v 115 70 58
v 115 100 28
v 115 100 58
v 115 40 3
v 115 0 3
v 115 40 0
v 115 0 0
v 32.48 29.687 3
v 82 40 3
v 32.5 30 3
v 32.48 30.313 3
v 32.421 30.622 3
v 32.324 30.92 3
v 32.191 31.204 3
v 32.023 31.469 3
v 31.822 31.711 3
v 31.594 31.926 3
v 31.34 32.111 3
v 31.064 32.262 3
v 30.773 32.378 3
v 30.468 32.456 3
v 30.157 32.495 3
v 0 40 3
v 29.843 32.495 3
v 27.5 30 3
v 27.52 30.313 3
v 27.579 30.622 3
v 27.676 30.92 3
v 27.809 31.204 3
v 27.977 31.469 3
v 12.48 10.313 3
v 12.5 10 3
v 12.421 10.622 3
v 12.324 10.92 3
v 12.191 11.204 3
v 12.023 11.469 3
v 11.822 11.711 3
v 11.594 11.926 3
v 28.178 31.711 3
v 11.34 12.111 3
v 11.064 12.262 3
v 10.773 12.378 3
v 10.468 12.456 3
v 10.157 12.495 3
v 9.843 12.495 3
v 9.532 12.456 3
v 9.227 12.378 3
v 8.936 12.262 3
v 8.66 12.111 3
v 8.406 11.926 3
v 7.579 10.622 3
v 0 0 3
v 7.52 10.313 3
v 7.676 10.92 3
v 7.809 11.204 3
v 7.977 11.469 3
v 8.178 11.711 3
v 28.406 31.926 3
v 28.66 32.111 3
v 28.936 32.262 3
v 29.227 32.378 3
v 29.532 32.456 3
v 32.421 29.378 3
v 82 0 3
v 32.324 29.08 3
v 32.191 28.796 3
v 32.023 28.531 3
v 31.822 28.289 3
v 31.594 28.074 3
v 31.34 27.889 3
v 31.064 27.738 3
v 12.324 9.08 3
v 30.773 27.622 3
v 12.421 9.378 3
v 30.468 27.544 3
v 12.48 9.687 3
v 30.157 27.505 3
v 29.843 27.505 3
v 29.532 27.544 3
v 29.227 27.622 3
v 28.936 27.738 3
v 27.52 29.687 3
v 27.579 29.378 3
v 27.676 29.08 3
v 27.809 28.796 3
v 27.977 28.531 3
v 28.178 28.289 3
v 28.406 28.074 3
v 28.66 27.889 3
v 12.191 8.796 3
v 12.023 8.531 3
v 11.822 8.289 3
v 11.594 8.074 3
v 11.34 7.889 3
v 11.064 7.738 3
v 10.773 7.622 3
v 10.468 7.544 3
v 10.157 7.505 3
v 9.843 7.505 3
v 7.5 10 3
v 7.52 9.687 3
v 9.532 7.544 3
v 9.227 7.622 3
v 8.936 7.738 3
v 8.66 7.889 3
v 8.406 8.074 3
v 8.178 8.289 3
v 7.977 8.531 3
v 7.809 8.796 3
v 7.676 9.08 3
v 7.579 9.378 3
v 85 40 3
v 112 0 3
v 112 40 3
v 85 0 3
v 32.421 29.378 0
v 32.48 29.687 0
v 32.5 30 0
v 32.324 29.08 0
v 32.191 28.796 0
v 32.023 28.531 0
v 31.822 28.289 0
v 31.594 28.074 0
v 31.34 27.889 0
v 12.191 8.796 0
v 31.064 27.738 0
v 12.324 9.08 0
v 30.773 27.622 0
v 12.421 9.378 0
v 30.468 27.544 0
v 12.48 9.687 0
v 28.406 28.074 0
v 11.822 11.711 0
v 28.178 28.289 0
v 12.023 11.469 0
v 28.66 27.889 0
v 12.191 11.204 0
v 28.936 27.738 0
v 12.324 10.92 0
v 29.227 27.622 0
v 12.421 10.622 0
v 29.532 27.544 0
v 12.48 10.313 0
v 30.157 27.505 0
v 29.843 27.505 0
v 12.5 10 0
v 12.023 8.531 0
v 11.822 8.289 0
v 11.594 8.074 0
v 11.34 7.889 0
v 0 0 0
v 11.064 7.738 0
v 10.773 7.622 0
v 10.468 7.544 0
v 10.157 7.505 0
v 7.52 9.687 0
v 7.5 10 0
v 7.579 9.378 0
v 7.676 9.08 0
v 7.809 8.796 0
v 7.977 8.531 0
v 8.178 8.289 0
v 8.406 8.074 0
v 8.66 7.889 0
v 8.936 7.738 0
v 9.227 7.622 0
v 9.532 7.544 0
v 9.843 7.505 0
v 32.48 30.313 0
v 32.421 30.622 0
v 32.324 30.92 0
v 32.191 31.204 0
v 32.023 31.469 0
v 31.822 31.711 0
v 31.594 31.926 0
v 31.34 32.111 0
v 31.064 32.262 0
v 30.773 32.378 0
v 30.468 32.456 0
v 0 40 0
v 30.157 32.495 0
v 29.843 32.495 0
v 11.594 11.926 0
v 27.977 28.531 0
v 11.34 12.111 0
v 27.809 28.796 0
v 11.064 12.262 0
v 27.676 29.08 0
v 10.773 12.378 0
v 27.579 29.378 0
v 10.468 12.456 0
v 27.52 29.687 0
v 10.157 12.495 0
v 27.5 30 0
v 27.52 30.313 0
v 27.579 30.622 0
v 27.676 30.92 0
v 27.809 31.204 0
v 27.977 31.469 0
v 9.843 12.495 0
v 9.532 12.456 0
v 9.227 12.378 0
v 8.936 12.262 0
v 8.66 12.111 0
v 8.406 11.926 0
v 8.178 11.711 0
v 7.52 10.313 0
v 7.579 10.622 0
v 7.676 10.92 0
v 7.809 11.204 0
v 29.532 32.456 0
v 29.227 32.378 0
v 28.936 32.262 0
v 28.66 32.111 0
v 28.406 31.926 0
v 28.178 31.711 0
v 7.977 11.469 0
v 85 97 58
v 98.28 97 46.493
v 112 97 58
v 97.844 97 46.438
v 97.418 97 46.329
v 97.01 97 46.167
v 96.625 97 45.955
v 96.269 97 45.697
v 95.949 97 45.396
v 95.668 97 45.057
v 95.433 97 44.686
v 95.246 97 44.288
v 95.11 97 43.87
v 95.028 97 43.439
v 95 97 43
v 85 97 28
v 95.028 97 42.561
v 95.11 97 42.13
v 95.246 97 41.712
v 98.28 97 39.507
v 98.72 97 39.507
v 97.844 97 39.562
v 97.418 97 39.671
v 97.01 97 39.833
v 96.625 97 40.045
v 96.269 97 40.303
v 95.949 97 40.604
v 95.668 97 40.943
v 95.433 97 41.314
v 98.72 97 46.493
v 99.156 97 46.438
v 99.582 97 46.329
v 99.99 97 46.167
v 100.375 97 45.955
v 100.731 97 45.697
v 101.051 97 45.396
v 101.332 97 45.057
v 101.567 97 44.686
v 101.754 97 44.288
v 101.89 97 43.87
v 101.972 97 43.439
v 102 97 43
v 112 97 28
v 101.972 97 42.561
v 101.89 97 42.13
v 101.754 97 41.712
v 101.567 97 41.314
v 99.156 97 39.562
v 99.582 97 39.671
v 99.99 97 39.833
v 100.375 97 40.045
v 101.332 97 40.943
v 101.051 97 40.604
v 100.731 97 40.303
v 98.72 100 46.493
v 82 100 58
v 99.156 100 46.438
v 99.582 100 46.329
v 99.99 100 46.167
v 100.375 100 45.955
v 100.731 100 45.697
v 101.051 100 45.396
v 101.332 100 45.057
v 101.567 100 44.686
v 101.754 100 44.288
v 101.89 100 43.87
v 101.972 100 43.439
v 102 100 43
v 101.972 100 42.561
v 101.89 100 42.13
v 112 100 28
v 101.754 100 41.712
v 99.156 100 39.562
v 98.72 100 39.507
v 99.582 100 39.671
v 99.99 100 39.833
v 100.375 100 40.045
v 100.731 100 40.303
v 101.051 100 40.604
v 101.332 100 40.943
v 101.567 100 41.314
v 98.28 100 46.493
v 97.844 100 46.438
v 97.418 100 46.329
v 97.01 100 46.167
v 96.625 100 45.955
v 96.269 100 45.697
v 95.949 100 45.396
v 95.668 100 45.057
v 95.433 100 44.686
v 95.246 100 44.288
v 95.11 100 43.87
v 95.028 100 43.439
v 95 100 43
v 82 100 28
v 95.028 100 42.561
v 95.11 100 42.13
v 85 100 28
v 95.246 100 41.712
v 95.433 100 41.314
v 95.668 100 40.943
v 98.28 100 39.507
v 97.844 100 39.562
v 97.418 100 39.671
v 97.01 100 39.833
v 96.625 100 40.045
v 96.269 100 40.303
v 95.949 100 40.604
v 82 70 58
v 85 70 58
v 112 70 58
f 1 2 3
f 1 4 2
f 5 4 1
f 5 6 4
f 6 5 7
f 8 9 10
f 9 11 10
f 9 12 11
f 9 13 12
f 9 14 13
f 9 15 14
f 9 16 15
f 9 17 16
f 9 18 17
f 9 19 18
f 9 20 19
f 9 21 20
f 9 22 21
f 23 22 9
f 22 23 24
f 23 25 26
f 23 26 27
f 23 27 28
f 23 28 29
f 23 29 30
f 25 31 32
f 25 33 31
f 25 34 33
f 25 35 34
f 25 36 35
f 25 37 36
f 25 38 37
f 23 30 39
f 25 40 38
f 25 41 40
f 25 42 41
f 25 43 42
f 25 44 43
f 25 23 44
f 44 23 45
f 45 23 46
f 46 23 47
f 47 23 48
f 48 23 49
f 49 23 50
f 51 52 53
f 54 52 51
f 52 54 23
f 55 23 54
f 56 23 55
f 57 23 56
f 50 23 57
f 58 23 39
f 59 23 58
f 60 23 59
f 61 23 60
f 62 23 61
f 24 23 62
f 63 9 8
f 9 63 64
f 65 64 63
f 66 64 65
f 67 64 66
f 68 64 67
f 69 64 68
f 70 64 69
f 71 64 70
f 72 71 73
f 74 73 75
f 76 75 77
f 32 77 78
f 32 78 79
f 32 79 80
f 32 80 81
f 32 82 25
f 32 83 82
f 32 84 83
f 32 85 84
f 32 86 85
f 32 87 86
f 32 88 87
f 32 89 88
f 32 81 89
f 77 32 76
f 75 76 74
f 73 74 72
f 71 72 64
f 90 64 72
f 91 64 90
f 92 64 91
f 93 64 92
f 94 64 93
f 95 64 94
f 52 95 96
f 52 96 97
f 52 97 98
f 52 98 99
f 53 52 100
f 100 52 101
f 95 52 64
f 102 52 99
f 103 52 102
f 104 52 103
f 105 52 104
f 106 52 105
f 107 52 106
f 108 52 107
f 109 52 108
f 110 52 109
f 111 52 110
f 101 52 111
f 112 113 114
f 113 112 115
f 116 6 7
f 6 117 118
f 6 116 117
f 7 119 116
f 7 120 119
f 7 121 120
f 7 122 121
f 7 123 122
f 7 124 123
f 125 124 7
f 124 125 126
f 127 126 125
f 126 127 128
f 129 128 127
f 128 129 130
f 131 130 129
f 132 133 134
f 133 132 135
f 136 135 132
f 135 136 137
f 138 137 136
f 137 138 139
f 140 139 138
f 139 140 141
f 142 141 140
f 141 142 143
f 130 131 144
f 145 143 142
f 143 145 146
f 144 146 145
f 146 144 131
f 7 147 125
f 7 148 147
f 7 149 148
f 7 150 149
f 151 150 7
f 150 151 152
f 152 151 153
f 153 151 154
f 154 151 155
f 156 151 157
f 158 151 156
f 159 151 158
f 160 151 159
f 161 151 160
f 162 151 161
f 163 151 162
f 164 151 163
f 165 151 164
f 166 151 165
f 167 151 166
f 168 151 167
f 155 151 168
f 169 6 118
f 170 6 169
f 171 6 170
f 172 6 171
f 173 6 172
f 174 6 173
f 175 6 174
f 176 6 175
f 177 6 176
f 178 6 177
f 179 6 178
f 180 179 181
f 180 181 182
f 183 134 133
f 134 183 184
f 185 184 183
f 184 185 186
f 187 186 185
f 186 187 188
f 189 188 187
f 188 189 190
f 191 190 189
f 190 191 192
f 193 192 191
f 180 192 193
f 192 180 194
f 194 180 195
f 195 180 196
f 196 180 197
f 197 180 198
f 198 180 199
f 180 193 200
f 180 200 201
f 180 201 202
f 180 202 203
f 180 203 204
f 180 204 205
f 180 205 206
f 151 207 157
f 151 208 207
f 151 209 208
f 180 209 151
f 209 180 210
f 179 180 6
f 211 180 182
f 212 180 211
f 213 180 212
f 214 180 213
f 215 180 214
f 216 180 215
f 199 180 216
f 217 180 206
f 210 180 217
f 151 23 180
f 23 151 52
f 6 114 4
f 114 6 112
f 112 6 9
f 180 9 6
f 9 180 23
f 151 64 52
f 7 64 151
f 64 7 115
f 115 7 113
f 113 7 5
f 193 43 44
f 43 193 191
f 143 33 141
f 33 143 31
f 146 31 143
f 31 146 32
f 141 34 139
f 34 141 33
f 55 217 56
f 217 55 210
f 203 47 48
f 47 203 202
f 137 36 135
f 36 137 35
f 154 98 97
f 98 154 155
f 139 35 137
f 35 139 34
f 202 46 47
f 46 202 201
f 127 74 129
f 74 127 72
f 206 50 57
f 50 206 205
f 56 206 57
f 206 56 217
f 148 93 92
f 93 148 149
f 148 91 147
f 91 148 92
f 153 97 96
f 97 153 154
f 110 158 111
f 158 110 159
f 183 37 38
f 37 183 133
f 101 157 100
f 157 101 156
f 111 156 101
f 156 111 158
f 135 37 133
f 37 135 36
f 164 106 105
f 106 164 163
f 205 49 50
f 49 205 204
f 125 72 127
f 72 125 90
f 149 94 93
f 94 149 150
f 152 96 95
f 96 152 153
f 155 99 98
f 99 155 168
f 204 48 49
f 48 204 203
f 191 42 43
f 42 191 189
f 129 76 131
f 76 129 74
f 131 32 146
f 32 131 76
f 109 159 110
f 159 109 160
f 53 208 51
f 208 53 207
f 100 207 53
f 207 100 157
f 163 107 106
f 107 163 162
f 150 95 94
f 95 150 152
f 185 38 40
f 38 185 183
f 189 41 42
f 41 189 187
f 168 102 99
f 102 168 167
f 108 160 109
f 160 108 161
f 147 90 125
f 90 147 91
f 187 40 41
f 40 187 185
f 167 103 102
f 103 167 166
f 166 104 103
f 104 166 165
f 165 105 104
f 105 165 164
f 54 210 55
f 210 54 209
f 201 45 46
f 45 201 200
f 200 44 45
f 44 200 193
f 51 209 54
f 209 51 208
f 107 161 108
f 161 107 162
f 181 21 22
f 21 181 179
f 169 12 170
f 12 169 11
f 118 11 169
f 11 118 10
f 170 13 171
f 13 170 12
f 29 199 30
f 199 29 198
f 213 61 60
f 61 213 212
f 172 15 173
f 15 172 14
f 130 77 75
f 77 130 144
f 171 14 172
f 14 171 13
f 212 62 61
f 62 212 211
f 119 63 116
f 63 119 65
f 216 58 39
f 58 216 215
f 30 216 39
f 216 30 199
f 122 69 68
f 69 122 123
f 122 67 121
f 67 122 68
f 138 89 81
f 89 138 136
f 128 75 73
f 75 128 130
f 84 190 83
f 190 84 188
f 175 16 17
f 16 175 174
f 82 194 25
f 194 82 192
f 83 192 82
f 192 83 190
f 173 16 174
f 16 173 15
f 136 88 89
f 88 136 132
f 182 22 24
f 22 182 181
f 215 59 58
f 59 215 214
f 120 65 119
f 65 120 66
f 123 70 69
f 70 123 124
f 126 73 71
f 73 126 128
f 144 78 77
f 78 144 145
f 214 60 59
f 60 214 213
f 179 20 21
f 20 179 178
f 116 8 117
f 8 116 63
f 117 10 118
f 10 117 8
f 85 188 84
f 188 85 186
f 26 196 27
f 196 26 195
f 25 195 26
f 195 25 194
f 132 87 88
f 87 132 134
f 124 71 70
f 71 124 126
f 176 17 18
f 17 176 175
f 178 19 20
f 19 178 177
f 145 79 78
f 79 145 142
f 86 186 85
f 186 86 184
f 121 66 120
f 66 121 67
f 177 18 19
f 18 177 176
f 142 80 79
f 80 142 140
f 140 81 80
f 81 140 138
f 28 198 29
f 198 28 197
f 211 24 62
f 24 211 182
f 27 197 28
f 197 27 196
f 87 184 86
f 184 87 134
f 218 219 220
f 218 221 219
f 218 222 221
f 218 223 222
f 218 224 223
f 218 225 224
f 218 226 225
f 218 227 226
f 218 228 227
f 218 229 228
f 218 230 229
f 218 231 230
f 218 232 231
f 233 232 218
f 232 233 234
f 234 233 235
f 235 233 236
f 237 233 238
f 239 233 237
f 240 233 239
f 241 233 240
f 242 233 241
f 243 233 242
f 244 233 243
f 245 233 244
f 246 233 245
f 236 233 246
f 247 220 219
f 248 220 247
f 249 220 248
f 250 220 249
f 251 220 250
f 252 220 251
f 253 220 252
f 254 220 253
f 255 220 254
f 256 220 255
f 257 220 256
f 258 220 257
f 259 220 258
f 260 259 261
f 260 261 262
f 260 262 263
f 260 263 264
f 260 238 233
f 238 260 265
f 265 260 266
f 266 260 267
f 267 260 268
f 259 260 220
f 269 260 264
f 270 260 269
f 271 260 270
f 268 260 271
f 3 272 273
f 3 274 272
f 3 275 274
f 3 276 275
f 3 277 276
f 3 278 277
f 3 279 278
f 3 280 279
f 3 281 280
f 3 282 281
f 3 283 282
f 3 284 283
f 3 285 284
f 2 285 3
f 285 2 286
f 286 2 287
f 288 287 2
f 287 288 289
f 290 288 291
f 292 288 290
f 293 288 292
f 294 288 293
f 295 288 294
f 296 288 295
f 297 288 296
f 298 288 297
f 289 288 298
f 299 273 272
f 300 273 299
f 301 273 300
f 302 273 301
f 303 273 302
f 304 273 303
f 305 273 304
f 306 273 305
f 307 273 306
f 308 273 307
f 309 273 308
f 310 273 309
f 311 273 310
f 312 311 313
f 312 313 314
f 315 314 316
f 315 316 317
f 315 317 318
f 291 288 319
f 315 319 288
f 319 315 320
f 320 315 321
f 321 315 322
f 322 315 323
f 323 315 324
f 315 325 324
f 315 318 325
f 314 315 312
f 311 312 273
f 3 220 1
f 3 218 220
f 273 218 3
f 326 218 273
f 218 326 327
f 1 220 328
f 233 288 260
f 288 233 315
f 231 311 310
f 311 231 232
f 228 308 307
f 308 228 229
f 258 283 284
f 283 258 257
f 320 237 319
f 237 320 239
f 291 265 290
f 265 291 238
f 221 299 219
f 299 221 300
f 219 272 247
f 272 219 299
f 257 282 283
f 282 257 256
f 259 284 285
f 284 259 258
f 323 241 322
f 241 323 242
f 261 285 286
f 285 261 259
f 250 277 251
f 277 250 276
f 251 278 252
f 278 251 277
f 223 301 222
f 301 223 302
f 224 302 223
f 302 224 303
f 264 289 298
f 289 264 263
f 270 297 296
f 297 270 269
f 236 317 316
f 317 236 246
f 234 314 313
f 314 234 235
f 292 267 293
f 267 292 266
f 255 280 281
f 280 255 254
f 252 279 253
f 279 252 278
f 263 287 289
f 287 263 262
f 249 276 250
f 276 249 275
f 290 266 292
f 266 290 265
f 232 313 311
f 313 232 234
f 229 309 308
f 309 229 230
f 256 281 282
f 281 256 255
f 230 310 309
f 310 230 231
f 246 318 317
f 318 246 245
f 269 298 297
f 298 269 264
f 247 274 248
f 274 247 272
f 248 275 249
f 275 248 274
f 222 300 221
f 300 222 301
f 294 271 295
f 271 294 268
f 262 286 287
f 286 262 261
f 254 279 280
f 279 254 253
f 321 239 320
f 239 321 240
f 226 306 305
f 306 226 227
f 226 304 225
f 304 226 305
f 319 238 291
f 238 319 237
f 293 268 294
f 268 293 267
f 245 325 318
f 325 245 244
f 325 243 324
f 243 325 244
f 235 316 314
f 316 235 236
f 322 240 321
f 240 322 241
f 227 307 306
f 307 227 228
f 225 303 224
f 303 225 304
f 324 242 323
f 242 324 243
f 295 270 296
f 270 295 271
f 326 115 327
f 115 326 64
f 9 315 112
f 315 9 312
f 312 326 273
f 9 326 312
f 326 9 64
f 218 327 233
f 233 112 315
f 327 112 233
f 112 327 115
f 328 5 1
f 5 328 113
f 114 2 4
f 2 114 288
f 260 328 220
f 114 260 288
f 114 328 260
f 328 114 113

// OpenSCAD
$fn=50;

OVERLAP=0.01; // how much bigger to make the object we want to remove
              // to ensure it fully removes it
              
DEPTH=3; // print depth of the holder

PROFILE_SIZE=40; // size of the alu profile
CM_R=3.5; // M size of the camera mounting (CM) bolt
CM_X=100; // distance of the mount hole from the left
CM_Y=100; // distance of the mount hole from the bottom
CM_Z=40; // distance of the mount hole from the front

MM_HOLE_R=2.5; // M size of the model mounting (MM) bolt
MM_X=10; // offset of the MM hole in the X
MM_Y=10; // offset of the MM hole in the Y

CM_SUPPORT_WIDTH=30; // width of the support

module front_plate() {
    
    difference() {
        cube([CM_X + CM_SUPPORT_WIDTH / 2, PROFILE_SIZE, DEPTH]);
        
        translate([MM_X, MM_Y, -OVERLAP/2])
        cylinder(h = DEPTH + OVERLAP, r = MM_HOLE_R);
        
        translate([PROFILE_SIZE - MM_X, PROFILE_SIZE - MM_Y, -OVERLAP/2])
        cylinder(h = DEPTH + OVERLAP, r = MM_HOLE_R);
    }
}

module cm_bracket() {
    rotate([0, 270, 0])
    linear_extrude(DEPTH)
    polygon(points=[
        [0, 0], 
        [CM_Z + CM_SUPPORT_WIDTH / 2, CM_Y - CM_SUPPORT_WIDTH], 
        [CM_Z + CM_SUPPORT_WIDTH / 2, CM_Y],
        [CM_Z - CM_SUPPORT_WIDTH / 2, CM_Y],
        [0, PROFILE_SIZE]
    ]);
}

module cm_plate() {
    rotate([90, 0, 0])
    difference() {
        cube([CM_SUPPORT_WIDTH, CM_SUPPORT_WIDTH, DEPTH]);
        
        translate([CM_SUPPORT_WIDTH / 2, CM_SUPPORT_WIDTH / 2, -OVERLAP / 2])
        cylinder(h = DEPTH + OVERLAP, r = CM_R);
    }
}

front_plate();

union() {
    
    w_offset = (CM_SUPPORT_WIDTH / 2) - (DEPTH / 2);
    
    translate([CM_X - (CM_SUPPORT_WIDTH / 2), 0, DEPTH])
    cm_bracket();
    translate([CM_X + (CM_SUPPORT_WIDTH / 2), 0, DEPTH])
    cm_bracket();
    translate([
       CM_X - (CM_SUPPORT_WIDTH / 2) - DEPTH / 2, 
       CM_Y, 
       CM_Z - (CM_SUPPORT_WIDTH / 2) + DEPTH
    ])
    cm_plate();
}
